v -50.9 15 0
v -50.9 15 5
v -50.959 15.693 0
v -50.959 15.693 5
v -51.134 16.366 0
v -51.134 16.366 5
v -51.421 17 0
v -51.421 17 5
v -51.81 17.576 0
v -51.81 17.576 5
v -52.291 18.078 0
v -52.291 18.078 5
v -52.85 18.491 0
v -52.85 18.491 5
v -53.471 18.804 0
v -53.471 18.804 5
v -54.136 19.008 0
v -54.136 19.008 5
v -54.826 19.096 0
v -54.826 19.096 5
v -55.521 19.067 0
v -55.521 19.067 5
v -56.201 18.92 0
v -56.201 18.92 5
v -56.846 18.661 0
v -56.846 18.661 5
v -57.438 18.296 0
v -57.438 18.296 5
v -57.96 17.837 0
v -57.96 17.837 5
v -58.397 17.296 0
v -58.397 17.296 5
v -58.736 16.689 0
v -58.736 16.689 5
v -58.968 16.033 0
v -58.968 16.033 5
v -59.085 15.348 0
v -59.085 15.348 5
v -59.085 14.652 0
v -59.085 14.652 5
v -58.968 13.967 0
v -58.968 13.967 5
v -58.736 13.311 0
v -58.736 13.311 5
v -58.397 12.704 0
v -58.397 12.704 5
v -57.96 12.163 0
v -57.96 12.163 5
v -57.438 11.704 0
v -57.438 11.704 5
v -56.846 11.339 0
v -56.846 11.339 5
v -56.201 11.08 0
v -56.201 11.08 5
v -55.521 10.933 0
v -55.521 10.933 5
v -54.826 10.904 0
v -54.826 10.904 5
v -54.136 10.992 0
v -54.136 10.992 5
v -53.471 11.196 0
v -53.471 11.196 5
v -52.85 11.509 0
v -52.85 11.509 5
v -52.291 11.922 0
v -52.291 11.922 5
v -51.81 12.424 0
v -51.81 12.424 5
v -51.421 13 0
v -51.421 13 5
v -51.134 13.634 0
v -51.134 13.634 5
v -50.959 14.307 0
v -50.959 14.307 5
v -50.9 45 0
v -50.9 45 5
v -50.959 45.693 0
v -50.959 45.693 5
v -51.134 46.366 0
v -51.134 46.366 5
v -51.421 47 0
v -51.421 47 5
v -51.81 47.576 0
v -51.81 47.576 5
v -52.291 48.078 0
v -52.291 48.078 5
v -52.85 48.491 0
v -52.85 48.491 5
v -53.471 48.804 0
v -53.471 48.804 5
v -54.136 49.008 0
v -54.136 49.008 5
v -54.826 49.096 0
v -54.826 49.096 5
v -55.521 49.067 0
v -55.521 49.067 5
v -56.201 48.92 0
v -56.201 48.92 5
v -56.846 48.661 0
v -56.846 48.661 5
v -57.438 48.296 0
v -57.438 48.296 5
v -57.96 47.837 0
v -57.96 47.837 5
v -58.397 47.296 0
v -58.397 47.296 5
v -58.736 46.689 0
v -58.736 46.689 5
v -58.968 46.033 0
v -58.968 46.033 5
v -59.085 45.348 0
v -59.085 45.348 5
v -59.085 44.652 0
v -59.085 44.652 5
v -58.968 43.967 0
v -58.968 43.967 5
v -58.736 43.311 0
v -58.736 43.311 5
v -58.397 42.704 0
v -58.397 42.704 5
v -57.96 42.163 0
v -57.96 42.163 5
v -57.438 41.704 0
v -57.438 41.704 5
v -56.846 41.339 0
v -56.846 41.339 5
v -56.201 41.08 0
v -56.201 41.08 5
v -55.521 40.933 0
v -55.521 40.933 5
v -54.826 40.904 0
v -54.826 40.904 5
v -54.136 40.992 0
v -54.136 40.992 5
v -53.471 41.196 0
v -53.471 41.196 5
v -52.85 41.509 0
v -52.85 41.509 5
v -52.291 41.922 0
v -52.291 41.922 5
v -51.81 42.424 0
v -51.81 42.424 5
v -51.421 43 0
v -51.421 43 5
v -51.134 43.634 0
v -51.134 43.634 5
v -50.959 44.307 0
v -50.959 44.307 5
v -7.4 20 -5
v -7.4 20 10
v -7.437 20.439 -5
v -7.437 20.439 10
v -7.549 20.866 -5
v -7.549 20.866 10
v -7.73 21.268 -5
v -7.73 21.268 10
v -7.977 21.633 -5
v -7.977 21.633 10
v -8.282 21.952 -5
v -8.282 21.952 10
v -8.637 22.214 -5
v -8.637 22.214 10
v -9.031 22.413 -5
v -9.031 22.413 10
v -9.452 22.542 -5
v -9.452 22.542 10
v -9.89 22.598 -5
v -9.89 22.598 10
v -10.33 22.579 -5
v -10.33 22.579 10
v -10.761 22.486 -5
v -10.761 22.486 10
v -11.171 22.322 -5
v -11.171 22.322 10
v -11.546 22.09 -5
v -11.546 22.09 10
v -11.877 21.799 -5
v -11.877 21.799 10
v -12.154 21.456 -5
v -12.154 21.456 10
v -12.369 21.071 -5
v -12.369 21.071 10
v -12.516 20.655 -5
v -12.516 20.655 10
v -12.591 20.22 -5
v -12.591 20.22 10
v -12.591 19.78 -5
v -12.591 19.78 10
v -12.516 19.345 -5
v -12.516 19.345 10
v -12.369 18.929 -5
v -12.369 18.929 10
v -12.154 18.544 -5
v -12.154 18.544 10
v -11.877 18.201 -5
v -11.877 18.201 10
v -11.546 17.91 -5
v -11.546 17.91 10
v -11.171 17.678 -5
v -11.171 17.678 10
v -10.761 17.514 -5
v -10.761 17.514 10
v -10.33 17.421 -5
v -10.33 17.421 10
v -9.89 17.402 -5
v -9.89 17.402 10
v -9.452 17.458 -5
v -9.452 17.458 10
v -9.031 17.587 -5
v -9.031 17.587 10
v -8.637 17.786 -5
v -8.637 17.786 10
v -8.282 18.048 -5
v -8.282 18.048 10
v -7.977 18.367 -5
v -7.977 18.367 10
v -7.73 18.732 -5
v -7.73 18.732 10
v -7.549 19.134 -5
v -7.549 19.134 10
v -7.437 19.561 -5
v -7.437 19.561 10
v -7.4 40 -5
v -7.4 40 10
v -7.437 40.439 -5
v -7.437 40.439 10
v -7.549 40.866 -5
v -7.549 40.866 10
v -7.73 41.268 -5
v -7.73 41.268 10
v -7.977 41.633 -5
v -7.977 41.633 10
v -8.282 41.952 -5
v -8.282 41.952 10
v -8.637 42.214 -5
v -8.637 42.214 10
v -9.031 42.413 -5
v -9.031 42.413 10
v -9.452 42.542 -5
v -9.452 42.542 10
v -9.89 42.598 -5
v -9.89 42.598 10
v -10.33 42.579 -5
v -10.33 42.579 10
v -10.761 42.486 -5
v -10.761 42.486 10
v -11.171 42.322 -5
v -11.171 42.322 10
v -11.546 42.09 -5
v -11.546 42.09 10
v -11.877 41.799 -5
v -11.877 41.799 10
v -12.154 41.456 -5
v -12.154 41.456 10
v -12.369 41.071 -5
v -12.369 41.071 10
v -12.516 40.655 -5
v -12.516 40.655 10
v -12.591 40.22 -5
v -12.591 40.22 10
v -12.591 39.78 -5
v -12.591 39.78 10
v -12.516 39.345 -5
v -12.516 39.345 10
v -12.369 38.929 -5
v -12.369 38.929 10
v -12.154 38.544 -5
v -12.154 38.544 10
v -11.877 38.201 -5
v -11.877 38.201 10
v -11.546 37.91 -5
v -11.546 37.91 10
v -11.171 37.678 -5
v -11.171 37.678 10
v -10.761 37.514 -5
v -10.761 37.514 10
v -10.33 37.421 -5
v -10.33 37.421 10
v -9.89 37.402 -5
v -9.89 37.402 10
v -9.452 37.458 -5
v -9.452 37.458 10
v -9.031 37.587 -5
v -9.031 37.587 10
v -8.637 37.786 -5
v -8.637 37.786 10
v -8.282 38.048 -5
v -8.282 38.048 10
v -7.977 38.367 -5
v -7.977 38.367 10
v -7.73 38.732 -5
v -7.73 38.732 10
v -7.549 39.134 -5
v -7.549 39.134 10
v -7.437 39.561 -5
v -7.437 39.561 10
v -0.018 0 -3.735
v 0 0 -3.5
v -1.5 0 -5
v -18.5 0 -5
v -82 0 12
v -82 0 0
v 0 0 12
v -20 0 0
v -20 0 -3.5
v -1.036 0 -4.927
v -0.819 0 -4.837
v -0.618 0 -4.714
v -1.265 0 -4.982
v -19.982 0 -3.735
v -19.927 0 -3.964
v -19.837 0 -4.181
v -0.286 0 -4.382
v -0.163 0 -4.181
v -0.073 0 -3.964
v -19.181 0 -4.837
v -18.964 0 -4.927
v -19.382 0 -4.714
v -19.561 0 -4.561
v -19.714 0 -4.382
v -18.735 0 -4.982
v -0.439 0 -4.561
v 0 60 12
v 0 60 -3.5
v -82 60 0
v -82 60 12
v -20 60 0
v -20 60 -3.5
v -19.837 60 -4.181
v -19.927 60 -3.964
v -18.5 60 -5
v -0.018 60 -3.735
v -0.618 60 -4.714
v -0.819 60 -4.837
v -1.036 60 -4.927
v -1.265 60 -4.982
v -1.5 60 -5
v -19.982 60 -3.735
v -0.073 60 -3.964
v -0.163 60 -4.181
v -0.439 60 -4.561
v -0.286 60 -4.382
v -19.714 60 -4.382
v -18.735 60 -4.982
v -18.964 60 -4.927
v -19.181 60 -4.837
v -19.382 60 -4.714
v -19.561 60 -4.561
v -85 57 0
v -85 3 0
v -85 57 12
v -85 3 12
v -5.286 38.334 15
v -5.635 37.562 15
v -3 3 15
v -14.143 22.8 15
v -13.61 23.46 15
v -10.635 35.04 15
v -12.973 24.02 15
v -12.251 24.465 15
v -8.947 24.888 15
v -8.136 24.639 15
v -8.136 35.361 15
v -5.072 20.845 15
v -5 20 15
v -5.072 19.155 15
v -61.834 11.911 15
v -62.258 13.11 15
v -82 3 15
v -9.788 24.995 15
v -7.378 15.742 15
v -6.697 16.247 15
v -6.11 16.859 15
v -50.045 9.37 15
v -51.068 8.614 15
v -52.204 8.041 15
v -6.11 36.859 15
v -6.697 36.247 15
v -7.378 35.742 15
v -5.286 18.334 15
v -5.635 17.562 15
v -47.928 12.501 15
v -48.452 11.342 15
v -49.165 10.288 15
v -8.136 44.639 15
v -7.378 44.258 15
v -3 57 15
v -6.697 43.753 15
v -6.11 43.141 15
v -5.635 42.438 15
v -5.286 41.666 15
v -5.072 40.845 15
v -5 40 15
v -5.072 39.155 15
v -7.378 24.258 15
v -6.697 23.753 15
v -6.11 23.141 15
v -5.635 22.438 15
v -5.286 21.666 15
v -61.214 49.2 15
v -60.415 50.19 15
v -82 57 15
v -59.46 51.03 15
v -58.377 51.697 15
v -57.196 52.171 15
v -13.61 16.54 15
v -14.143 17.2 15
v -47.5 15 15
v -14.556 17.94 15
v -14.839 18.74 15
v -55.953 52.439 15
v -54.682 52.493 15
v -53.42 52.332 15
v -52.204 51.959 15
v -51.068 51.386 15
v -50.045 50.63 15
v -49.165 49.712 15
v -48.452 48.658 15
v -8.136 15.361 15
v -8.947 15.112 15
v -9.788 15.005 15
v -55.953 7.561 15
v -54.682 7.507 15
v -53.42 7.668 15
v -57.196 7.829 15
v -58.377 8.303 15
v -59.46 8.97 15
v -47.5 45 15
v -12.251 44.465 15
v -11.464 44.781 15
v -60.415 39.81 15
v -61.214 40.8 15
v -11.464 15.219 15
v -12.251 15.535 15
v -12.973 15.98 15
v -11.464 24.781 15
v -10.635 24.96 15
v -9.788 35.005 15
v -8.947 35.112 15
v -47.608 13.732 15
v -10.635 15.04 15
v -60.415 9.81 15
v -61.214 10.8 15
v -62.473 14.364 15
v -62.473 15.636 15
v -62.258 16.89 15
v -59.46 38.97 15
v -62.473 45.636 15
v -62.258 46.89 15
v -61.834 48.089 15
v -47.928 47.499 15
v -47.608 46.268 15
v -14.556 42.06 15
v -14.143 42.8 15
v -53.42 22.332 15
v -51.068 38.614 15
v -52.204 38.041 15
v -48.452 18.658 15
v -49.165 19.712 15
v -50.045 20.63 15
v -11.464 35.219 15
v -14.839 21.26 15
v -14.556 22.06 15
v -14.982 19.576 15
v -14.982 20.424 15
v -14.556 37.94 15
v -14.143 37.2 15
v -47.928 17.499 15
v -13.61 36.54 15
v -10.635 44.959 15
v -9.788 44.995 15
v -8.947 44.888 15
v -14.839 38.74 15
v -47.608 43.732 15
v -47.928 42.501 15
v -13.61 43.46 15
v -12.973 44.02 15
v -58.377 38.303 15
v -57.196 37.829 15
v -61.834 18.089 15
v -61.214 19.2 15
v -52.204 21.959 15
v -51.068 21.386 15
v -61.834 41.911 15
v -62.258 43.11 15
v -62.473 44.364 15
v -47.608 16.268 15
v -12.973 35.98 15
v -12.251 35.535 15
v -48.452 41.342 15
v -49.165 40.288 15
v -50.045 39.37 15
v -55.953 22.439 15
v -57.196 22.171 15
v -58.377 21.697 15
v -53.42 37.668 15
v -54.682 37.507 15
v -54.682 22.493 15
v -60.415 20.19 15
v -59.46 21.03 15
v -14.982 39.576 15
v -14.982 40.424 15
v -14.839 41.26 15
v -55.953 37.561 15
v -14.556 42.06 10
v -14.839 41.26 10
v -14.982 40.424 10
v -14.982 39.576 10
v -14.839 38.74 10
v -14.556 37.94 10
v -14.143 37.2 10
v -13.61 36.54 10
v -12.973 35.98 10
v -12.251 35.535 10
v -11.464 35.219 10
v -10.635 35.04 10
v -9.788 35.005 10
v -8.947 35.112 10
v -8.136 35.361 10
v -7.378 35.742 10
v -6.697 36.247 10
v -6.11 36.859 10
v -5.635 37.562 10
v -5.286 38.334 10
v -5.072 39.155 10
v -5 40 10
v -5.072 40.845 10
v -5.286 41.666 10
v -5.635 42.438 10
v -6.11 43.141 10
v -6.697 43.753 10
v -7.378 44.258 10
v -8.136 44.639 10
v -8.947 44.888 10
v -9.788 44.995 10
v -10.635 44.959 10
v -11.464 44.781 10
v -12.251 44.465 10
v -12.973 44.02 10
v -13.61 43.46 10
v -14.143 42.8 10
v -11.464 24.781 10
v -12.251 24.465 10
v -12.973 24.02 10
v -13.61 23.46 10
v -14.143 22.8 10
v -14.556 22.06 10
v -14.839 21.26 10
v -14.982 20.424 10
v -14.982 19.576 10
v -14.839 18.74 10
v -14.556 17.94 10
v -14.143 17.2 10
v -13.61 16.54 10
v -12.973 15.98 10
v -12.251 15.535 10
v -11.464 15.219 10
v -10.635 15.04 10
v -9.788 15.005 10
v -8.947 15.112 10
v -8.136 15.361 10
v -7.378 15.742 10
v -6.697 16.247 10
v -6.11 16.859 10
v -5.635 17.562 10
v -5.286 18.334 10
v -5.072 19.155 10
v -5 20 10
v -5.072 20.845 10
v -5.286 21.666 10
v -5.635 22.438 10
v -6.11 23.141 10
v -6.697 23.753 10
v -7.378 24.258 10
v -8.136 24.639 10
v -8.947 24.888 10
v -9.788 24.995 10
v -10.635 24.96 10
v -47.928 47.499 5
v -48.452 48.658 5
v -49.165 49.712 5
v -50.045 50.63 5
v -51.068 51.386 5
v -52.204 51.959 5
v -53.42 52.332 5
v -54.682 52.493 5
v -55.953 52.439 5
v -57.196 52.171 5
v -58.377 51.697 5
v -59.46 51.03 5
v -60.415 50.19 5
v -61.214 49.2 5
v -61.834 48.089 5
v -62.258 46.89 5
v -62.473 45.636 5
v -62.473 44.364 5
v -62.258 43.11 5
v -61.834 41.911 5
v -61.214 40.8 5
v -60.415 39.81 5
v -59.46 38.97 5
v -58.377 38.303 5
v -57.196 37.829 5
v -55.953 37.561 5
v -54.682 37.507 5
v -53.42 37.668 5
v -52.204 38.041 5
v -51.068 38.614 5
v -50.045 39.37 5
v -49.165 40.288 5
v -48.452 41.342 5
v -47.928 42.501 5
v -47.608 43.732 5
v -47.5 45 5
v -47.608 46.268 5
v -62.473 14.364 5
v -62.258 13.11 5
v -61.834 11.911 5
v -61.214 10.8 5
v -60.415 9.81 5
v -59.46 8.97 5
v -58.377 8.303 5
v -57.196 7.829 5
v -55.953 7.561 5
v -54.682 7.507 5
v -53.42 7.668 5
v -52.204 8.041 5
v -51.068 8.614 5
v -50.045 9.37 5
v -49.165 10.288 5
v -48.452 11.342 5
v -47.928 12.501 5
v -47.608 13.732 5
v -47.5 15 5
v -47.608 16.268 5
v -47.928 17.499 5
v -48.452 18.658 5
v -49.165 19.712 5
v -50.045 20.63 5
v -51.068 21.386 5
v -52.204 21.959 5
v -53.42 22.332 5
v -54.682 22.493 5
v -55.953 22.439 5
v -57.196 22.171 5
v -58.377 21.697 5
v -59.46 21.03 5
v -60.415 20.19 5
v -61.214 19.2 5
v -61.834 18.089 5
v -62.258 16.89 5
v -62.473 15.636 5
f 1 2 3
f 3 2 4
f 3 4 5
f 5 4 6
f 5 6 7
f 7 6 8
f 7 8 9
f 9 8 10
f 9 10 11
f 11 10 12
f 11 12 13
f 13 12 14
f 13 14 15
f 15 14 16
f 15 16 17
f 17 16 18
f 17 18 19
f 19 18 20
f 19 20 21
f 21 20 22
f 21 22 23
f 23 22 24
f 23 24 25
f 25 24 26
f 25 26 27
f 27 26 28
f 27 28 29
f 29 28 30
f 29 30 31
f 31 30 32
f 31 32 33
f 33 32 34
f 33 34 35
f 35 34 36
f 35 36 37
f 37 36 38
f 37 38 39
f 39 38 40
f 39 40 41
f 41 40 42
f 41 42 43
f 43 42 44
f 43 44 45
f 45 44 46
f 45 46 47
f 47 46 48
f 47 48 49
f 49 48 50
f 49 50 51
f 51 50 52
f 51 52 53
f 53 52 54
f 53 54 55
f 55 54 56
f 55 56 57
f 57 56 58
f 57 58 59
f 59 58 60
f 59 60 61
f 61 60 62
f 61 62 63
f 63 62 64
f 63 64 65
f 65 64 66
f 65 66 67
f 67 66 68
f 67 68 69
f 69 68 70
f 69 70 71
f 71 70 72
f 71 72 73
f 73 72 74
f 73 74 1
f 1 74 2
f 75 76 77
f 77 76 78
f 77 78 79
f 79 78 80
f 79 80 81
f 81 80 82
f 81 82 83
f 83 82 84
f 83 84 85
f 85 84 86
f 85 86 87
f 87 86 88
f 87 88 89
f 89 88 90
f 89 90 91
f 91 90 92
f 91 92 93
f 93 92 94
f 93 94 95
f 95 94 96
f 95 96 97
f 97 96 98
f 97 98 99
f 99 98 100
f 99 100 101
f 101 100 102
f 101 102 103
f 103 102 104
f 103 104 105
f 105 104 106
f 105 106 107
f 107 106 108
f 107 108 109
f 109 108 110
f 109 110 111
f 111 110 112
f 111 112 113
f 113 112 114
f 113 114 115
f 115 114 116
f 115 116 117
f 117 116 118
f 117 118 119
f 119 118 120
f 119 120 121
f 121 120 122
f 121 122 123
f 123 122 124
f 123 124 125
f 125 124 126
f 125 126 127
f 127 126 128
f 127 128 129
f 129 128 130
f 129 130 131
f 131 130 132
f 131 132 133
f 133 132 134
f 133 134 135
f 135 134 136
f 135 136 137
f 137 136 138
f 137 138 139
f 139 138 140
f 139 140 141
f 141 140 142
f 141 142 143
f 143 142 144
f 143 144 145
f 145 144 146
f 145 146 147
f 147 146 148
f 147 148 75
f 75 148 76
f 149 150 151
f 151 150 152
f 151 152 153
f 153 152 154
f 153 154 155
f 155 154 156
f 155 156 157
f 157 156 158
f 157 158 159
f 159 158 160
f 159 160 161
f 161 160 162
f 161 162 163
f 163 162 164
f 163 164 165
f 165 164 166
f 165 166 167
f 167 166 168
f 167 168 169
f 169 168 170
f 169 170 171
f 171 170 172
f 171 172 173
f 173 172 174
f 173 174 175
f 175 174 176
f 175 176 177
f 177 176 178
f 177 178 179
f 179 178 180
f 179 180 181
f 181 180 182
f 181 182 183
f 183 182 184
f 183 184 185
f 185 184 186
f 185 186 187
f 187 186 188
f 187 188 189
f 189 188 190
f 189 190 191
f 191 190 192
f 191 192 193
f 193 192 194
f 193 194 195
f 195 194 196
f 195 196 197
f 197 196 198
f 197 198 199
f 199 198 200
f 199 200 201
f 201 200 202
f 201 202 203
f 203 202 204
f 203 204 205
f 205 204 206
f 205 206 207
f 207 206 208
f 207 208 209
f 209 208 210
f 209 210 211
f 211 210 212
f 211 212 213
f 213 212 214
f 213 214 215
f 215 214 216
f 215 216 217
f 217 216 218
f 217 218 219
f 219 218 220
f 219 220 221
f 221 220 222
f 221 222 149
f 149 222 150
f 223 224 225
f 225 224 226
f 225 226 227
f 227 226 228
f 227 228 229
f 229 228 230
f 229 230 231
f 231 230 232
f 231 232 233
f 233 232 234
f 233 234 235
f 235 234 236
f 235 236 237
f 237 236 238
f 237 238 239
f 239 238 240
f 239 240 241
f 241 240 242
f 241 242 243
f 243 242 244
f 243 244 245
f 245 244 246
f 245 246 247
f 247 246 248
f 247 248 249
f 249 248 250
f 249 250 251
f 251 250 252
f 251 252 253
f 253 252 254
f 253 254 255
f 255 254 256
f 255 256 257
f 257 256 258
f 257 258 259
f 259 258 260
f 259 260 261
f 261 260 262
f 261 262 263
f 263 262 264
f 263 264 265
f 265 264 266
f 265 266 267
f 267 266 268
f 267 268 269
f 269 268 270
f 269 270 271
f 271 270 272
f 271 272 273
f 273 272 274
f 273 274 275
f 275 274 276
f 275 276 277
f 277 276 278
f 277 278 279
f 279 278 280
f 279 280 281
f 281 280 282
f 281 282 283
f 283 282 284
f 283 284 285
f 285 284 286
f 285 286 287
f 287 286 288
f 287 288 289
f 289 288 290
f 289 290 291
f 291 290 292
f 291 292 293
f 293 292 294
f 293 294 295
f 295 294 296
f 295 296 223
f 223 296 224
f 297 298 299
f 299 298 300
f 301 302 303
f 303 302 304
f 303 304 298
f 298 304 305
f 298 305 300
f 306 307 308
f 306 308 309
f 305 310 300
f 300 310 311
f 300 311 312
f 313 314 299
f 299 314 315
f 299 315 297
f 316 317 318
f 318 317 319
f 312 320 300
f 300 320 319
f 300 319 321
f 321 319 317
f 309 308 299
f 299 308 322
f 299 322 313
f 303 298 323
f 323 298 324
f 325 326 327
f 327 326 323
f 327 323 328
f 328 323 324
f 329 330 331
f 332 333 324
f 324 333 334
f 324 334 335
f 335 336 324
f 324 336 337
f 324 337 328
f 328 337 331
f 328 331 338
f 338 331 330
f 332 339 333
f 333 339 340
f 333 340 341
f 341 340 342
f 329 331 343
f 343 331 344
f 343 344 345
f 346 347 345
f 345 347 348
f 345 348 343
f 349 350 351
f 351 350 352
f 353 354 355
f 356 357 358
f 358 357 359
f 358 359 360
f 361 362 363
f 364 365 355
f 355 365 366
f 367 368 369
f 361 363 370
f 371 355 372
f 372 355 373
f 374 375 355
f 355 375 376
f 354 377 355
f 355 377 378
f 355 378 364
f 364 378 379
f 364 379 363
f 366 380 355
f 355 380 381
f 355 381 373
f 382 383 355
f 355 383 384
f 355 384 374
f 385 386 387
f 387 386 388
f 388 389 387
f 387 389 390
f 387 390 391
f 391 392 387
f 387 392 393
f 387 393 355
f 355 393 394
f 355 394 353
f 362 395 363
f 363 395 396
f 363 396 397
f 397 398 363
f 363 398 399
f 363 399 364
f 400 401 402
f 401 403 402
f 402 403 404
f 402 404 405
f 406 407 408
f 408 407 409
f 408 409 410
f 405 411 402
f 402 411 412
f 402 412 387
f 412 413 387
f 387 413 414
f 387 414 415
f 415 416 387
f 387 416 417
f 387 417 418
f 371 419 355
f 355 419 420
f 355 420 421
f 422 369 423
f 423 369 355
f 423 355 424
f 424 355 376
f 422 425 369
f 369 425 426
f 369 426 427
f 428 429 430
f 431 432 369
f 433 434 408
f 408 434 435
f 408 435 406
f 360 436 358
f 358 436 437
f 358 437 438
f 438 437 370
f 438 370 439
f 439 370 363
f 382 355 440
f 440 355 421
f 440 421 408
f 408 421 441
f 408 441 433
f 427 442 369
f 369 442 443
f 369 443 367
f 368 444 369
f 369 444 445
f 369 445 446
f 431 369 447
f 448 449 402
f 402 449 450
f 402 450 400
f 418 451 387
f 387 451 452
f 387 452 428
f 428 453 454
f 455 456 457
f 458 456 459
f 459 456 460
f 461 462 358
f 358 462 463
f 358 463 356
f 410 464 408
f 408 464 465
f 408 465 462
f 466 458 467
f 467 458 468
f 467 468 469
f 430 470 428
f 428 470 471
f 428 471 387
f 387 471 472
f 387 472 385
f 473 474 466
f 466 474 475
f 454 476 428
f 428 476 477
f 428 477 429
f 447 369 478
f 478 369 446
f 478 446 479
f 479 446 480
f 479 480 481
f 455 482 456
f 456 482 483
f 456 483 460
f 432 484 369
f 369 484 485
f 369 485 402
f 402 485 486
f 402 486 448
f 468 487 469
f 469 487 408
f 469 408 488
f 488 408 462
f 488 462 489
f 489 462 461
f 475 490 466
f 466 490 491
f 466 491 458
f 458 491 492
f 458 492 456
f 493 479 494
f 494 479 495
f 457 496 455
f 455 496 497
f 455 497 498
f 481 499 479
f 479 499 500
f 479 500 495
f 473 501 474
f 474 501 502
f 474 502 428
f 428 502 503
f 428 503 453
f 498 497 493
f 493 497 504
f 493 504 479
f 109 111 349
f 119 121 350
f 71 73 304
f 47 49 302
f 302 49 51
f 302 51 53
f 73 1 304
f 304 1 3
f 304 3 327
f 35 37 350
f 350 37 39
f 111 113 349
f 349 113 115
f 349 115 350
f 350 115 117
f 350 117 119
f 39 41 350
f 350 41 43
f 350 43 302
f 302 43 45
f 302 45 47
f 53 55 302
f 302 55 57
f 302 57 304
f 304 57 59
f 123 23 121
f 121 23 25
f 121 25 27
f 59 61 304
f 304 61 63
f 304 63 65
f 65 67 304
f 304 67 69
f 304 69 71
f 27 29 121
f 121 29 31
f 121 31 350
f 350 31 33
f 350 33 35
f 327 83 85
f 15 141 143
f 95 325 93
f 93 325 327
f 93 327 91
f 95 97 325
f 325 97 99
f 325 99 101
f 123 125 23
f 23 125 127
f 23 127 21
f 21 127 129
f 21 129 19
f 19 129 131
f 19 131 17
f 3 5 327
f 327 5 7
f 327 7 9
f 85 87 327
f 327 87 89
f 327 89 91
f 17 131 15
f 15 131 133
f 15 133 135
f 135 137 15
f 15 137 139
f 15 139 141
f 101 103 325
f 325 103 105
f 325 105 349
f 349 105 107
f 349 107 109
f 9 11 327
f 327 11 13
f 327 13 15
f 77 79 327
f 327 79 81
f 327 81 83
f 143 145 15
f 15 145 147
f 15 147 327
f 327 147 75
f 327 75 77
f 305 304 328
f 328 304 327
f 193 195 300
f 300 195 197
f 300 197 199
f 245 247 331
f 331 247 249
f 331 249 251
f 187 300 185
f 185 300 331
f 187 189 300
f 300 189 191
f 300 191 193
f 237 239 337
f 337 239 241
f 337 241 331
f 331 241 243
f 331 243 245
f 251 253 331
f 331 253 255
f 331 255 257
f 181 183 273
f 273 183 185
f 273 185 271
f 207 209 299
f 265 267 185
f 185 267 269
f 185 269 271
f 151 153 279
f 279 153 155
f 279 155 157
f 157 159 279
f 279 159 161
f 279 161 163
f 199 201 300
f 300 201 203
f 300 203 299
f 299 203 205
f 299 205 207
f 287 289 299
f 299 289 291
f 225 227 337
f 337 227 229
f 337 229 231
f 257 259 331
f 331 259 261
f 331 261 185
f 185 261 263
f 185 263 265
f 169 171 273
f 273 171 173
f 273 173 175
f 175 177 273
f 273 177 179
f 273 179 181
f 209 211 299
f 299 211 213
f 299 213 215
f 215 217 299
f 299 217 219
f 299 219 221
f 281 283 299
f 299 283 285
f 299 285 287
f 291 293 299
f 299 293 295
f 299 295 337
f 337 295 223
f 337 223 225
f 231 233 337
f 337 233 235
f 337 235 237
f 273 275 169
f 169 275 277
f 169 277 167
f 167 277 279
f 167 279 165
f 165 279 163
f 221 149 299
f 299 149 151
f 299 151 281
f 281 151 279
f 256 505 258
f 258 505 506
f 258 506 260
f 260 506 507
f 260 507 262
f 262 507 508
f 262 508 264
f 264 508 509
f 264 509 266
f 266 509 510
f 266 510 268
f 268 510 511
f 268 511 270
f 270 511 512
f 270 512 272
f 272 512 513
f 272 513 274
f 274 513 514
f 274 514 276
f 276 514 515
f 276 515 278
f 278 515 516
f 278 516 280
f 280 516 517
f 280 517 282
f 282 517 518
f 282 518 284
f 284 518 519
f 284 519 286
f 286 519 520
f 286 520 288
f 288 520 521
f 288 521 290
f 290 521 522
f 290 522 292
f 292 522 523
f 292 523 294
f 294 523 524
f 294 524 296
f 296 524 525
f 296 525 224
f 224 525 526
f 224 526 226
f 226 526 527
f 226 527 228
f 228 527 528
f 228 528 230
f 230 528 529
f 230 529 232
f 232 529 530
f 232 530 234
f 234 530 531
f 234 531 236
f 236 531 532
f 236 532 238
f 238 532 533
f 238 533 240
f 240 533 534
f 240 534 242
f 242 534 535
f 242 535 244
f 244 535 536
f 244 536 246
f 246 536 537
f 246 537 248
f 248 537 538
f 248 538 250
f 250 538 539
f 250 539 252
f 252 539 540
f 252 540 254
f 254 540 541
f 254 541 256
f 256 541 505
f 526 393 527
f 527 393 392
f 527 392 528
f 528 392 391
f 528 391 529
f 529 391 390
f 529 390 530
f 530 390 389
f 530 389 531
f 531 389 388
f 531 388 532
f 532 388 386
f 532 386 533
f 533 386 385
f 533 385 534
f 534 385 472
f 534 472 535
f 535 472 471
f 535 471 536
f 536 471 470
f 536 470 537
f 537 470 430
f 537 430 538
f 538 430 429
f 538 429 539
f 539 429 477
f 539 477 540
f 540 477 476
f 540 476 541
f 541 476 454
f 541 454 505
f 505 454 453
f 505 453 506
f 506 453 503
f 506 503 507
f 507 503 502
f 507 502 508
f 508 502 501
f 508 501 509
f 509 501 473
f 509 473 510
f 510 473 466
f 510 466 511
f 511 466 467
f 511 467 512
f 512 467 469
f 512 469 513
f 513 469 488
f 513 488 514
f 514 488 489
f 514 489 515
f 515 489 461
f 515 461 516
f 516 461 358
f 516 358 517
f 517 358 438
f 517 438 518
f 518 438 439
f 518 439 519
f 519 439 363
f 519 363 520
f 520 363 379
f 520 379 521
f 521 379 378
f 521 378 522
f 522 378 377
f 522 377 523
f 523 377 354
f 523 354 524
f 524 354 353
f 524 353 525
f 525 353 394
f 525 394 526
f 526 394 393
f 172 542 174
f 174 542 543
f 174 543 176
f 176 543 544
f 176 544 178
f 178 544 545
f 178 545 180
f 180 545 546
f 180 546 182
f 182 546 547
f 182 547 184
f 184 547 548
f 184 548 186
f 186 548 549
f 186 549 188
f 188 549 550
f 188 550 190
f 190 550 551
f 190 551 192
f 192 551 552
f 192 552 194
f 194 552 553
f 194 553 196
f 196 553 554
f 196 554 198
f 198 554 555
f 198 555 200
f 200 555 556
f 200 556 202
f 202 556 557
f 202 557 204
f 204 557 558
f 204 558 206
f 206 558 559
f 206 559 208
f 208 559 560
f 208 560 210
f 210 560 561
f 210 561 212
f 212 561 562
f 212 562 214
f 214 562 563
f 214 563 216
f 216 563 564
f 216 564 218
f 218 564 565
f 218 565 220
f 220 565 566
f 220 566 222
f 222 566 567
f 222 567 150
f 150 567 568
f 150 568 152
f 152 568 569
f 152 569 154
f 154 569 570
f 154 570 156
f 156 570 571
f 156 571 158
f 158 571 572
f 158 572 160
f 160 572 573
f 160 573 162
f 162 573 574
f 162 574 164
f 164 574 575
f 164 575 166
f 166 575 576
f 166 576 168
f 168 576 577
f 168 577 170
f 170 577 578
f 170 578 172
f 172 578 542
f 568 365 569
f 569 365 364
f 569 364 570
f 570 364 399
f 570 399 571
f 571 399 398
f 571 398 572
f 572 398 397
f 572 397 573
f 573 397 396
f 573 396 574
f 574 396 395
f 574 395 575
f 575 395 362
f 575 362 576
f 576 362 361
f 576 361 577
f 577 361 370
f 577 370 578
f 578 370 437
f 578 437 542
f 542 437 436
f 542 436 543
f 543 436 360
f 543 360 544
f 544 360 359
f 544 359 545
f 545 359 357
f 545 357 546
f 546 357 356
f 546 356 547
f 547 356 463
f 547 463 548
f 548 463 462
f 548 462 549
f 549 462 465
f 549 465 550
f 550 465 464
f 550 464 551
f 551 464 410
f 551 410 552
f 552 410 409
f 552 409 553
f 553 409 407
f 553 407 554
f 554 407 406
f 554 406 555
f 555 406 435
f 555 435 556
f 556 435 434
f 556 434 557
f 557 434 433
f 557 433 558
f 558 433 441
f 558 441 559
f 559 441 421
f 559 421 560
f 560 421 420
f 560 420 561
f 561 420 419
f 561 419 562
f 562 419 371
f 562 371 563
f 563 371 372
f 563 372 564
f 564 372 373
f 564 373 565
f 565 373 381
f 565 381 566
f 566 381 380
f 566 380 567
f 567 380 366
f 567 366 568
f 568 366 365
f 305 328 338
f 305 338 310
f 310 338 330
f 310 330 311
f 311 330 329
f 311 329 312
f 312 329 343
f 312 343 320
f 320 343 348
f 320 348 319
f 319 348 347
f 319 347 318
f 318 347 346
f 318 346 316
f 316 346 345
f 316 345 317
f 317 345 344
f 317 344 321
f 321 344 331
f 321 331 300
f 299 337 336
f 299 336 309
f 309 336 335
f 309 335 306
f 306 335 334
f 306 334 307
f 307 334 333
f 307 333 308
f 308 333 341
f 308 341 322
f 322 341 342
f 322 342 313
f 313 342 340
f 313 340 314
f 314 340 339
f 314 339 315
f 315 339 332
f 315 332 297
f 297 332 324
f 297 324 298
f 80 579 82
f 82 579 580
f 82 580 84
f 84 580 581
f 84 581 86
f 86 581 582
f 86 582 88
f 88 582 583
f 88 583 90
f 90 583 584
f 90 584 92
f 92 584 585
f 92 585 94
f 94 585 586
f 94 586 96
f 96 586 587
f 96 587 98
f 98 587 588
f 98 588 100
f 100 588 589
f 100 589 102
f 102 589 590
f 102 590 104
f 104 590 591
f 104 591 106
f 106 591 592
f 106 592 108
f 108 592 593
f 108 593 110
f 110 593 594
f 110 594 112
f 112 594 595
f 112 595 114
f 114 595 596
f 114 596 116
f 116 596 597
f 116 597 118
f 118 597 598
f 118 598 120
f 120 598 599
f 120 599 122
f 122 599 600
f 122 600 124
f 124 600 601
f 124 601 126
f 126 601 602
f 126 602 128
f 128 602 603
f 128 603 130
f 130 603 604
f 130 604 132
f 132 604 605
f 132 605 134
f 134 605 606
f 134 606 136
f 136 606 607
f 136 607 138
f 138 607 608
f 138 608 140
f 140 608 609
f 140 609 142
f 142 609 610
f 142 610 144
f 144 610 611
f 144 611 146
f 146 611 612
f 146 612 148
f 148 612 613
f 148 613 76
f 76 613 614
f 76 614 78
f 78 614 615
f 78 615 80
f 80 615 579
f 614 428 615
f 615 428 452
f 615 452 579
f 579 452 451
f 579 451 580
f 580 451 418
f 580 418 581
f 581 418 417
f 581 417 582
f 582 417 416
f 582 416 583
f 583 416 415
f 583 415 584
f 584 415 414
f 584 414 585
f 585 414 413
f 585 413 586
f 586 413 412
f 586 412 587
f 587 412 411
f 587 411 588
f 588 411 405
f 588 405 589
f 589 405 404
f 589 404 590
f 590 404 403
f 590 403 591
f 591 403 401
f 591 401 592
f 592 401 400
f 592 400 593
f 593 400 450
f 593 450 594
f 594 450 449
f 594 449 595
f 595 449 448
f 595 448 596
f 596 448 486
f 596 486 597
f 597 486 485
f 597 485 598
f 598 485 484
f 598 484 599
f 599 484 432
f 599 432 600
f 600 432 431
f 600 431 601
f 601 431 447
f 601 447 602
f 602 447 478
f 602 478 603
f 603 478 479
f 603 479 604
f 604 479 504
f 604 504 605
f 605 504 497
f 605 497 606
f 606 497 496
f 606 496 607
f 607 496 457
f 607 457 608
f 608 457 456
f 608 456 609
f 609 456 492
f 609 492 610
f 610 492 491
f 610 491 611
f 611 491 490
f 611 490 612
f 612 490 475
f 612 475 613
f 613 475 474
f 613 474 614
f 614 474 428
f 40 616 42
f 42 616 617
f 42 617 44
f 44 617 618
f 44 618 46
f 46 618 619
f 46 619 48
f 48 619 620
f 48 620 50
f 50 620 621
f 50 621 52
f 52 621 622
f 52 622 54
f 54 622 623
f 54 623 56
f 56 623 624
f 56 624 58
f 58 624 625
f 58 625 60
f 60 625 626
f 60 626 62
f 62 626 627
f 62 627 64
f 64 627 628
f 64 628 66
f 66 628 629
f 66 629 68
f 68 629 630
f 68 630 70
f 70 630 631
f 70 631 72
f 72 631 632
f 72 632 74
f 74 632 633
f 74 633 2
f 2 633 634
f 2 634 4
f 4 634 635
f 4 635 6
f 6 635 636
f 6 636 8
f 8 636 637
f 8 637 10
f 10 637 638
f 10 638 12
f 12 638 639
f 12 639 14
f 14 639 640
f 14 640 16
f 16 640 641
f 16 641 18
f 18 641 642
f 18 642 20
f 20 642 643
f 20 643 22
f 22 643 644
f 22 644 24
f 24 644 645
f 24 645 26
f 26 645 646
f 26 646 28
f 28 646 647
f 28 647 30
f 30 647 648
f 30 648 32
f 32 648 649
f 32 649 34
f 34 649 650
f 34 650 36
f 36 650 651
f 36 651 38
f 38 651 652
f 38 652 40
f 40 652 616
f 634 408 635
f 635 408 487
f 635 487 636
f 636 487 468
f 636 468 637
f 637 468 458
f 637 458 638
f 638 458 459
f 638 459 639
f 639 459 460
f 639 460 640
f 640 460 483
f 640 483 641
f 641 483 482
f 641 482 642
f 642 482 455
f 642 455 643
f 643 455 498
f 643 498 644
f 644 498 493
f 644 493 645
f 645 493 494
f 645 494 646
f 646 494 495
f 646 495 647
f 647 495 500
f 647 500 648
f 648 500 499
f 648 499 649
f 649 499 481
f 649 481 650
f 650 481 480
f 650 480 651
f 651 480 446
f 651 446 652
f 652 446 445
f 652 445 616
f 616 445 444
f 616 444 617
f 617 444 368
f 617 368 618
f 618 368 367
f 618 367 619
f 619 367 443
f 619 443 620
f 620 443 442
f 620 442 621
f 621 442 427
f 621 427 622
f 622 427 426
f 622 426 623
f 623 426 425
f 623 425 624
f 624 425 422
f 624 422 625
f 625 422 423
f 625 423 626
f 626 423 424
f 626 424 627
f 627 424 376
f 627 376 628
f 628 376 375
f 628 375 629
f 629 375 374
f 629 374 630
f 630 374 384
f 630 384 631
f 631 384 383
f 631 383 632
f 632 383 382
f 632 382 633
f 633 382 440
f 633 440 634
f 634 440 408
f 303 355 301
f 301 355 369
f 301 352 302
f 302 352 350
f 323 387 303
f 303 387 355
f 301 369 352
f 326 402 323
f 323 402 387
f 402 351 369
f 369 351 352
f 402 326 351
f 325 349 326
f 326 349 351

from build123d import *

# Parameters (mm, degrees)
SKETCH1_W               = 85
SKETCH1_H               = 60
BOSS_EXTRUDE1_DEPTH     = 15
SKETCH2_W               = 20
SKETCH2_H               = 60
BOSS_EXTRUDE2_DEPTH     = 5
CUT_EXTRUDE1_DEPTH      = 106.118980208
CUT_EXTRUDE1_DEPTH_BACK = 106.118980208
SKETCH3_R               = 2.6
CUT_EXTRUDE2_START      = 15
SKETCH4_R               = 5
CUT_EXTRUDE2_DEPTH      = 5
FILLET1_R               = 1.5
CUT_EXTRUDE3_DEPTH      = 106.118980208
CUT_EXTRUDE3_DEPTH_BACK = 106.118980208
SKETCH5_R               = 4.1
CUT_EXTRUDE4_START      = 15
SKETCH6_R               = 7.5
CUT_EXTRUDE4_DEPTH      = 10
CHAMFER1_SIZE           = 3


with BuildPart() as part:
    # Sketch1 → Boss-Extrude1 (new body)
    with BuildSketch(Plane.XY):
        with Locations((-42.5, 30)):
            Rectangle(SKETCH1_W, SKETCH1_H)
    extrude(amount=BOSS_EXTRUDE1_DEPTH)

    # Sketch2 → Boss-Extrude2 (add)
    with BuildSketch(Plane.XY):
        with Locations((-10, 30)):
            Rectangle(SKETCH2_W, SKETCH2_H)
    extrude(amount=-BOSS_EXTRUDE2_DEPTH)

    # Sketch3 → Cut-Extrude1 (cut, two sides: drawn at the far end of the back side and taken through both)
    with BuildSketch(Plane.XY.offset(-CUT_EXTRUDE1_DEPTH_BACK)):
        with Locations((-10, 40)):
            Circle(SKETCH3_R)
        with Locations((-10, 20)):
            Circle(SKETCH3_R)
    extrude(amount=CUT_EXTRUDE1_DEPTH + CUT_EXTRUDE1_DEPTH_BACK, mode=Mode.SUBTRACT)

    # Sketch4 → Cut-Extrude2 (cut)
    with BuildSketch(Plane.XY.offset(CUT_EXTRUDE2_START)):
        with Locations((-10, 40)):
            Circle(SKETCH4_R)
        with Locations((-10, 20)):
            Circle(SKETCH4_R)
    extrude(amount=-CUT_EXTRUDE2_DEPTH, mode=Mode.SUBTRACT)

    # Fillet1
    fillet1_edges = [part.edges().sort_by_distance(p)[0] for p in [
        (-20, 30, -5),
        (0, 30, -5),
    ]]
    fillet(fillet1_edges, radius=FILLET1_R)

    # Sketch5 → Cut-Extrude3 (cut, two sides: drawn at the far end of the back side and taken through both)
    with BuildSketch(Plane.XY.offset(-CUT_EXTRUDE3_DEPTH_BACK)):
        with Locations((-55, 45)):
            Circle(SKETCH5_R)
        with Locations((-55, 15)):
            Circle(SKETCH5_R)
    extrude(amount=CUT_EXTRUDE3_DEPTH + CUT_EXTRUDE3_DEPTH_BACK, mode=Mode.SUBTRACT)

    # Sketch6 → Cut-Extrude4 (cut)
    with BuildSketch(Plane.XY.offset(CUT_EXTRUDE4_START)):
        with Locations((-55, 45)):
            Circle(SKETCH6_R)
        with Locations((-55, 15)):
            Circle(SKETCH6_R)
    extrude(amount=-CUT_EXTRUDE4_DEPTH, mode=Mode.SUBTRACT)

    # Chamfer1
    chamfer1_edges = [part.edges().sort_by_distance(p)[0] for p in [
        (-42.5, 60, 15),
        (-85, 30, 15),
        (-42.5, 0, 15),
        (-85, 0, 7.5),
        (-85, 60, 7.5),
        (0, 30, 15),
    ]]
    chamfer(chamfer1_edges, length=CHAMFER1_SIZE)


solid = part.part
